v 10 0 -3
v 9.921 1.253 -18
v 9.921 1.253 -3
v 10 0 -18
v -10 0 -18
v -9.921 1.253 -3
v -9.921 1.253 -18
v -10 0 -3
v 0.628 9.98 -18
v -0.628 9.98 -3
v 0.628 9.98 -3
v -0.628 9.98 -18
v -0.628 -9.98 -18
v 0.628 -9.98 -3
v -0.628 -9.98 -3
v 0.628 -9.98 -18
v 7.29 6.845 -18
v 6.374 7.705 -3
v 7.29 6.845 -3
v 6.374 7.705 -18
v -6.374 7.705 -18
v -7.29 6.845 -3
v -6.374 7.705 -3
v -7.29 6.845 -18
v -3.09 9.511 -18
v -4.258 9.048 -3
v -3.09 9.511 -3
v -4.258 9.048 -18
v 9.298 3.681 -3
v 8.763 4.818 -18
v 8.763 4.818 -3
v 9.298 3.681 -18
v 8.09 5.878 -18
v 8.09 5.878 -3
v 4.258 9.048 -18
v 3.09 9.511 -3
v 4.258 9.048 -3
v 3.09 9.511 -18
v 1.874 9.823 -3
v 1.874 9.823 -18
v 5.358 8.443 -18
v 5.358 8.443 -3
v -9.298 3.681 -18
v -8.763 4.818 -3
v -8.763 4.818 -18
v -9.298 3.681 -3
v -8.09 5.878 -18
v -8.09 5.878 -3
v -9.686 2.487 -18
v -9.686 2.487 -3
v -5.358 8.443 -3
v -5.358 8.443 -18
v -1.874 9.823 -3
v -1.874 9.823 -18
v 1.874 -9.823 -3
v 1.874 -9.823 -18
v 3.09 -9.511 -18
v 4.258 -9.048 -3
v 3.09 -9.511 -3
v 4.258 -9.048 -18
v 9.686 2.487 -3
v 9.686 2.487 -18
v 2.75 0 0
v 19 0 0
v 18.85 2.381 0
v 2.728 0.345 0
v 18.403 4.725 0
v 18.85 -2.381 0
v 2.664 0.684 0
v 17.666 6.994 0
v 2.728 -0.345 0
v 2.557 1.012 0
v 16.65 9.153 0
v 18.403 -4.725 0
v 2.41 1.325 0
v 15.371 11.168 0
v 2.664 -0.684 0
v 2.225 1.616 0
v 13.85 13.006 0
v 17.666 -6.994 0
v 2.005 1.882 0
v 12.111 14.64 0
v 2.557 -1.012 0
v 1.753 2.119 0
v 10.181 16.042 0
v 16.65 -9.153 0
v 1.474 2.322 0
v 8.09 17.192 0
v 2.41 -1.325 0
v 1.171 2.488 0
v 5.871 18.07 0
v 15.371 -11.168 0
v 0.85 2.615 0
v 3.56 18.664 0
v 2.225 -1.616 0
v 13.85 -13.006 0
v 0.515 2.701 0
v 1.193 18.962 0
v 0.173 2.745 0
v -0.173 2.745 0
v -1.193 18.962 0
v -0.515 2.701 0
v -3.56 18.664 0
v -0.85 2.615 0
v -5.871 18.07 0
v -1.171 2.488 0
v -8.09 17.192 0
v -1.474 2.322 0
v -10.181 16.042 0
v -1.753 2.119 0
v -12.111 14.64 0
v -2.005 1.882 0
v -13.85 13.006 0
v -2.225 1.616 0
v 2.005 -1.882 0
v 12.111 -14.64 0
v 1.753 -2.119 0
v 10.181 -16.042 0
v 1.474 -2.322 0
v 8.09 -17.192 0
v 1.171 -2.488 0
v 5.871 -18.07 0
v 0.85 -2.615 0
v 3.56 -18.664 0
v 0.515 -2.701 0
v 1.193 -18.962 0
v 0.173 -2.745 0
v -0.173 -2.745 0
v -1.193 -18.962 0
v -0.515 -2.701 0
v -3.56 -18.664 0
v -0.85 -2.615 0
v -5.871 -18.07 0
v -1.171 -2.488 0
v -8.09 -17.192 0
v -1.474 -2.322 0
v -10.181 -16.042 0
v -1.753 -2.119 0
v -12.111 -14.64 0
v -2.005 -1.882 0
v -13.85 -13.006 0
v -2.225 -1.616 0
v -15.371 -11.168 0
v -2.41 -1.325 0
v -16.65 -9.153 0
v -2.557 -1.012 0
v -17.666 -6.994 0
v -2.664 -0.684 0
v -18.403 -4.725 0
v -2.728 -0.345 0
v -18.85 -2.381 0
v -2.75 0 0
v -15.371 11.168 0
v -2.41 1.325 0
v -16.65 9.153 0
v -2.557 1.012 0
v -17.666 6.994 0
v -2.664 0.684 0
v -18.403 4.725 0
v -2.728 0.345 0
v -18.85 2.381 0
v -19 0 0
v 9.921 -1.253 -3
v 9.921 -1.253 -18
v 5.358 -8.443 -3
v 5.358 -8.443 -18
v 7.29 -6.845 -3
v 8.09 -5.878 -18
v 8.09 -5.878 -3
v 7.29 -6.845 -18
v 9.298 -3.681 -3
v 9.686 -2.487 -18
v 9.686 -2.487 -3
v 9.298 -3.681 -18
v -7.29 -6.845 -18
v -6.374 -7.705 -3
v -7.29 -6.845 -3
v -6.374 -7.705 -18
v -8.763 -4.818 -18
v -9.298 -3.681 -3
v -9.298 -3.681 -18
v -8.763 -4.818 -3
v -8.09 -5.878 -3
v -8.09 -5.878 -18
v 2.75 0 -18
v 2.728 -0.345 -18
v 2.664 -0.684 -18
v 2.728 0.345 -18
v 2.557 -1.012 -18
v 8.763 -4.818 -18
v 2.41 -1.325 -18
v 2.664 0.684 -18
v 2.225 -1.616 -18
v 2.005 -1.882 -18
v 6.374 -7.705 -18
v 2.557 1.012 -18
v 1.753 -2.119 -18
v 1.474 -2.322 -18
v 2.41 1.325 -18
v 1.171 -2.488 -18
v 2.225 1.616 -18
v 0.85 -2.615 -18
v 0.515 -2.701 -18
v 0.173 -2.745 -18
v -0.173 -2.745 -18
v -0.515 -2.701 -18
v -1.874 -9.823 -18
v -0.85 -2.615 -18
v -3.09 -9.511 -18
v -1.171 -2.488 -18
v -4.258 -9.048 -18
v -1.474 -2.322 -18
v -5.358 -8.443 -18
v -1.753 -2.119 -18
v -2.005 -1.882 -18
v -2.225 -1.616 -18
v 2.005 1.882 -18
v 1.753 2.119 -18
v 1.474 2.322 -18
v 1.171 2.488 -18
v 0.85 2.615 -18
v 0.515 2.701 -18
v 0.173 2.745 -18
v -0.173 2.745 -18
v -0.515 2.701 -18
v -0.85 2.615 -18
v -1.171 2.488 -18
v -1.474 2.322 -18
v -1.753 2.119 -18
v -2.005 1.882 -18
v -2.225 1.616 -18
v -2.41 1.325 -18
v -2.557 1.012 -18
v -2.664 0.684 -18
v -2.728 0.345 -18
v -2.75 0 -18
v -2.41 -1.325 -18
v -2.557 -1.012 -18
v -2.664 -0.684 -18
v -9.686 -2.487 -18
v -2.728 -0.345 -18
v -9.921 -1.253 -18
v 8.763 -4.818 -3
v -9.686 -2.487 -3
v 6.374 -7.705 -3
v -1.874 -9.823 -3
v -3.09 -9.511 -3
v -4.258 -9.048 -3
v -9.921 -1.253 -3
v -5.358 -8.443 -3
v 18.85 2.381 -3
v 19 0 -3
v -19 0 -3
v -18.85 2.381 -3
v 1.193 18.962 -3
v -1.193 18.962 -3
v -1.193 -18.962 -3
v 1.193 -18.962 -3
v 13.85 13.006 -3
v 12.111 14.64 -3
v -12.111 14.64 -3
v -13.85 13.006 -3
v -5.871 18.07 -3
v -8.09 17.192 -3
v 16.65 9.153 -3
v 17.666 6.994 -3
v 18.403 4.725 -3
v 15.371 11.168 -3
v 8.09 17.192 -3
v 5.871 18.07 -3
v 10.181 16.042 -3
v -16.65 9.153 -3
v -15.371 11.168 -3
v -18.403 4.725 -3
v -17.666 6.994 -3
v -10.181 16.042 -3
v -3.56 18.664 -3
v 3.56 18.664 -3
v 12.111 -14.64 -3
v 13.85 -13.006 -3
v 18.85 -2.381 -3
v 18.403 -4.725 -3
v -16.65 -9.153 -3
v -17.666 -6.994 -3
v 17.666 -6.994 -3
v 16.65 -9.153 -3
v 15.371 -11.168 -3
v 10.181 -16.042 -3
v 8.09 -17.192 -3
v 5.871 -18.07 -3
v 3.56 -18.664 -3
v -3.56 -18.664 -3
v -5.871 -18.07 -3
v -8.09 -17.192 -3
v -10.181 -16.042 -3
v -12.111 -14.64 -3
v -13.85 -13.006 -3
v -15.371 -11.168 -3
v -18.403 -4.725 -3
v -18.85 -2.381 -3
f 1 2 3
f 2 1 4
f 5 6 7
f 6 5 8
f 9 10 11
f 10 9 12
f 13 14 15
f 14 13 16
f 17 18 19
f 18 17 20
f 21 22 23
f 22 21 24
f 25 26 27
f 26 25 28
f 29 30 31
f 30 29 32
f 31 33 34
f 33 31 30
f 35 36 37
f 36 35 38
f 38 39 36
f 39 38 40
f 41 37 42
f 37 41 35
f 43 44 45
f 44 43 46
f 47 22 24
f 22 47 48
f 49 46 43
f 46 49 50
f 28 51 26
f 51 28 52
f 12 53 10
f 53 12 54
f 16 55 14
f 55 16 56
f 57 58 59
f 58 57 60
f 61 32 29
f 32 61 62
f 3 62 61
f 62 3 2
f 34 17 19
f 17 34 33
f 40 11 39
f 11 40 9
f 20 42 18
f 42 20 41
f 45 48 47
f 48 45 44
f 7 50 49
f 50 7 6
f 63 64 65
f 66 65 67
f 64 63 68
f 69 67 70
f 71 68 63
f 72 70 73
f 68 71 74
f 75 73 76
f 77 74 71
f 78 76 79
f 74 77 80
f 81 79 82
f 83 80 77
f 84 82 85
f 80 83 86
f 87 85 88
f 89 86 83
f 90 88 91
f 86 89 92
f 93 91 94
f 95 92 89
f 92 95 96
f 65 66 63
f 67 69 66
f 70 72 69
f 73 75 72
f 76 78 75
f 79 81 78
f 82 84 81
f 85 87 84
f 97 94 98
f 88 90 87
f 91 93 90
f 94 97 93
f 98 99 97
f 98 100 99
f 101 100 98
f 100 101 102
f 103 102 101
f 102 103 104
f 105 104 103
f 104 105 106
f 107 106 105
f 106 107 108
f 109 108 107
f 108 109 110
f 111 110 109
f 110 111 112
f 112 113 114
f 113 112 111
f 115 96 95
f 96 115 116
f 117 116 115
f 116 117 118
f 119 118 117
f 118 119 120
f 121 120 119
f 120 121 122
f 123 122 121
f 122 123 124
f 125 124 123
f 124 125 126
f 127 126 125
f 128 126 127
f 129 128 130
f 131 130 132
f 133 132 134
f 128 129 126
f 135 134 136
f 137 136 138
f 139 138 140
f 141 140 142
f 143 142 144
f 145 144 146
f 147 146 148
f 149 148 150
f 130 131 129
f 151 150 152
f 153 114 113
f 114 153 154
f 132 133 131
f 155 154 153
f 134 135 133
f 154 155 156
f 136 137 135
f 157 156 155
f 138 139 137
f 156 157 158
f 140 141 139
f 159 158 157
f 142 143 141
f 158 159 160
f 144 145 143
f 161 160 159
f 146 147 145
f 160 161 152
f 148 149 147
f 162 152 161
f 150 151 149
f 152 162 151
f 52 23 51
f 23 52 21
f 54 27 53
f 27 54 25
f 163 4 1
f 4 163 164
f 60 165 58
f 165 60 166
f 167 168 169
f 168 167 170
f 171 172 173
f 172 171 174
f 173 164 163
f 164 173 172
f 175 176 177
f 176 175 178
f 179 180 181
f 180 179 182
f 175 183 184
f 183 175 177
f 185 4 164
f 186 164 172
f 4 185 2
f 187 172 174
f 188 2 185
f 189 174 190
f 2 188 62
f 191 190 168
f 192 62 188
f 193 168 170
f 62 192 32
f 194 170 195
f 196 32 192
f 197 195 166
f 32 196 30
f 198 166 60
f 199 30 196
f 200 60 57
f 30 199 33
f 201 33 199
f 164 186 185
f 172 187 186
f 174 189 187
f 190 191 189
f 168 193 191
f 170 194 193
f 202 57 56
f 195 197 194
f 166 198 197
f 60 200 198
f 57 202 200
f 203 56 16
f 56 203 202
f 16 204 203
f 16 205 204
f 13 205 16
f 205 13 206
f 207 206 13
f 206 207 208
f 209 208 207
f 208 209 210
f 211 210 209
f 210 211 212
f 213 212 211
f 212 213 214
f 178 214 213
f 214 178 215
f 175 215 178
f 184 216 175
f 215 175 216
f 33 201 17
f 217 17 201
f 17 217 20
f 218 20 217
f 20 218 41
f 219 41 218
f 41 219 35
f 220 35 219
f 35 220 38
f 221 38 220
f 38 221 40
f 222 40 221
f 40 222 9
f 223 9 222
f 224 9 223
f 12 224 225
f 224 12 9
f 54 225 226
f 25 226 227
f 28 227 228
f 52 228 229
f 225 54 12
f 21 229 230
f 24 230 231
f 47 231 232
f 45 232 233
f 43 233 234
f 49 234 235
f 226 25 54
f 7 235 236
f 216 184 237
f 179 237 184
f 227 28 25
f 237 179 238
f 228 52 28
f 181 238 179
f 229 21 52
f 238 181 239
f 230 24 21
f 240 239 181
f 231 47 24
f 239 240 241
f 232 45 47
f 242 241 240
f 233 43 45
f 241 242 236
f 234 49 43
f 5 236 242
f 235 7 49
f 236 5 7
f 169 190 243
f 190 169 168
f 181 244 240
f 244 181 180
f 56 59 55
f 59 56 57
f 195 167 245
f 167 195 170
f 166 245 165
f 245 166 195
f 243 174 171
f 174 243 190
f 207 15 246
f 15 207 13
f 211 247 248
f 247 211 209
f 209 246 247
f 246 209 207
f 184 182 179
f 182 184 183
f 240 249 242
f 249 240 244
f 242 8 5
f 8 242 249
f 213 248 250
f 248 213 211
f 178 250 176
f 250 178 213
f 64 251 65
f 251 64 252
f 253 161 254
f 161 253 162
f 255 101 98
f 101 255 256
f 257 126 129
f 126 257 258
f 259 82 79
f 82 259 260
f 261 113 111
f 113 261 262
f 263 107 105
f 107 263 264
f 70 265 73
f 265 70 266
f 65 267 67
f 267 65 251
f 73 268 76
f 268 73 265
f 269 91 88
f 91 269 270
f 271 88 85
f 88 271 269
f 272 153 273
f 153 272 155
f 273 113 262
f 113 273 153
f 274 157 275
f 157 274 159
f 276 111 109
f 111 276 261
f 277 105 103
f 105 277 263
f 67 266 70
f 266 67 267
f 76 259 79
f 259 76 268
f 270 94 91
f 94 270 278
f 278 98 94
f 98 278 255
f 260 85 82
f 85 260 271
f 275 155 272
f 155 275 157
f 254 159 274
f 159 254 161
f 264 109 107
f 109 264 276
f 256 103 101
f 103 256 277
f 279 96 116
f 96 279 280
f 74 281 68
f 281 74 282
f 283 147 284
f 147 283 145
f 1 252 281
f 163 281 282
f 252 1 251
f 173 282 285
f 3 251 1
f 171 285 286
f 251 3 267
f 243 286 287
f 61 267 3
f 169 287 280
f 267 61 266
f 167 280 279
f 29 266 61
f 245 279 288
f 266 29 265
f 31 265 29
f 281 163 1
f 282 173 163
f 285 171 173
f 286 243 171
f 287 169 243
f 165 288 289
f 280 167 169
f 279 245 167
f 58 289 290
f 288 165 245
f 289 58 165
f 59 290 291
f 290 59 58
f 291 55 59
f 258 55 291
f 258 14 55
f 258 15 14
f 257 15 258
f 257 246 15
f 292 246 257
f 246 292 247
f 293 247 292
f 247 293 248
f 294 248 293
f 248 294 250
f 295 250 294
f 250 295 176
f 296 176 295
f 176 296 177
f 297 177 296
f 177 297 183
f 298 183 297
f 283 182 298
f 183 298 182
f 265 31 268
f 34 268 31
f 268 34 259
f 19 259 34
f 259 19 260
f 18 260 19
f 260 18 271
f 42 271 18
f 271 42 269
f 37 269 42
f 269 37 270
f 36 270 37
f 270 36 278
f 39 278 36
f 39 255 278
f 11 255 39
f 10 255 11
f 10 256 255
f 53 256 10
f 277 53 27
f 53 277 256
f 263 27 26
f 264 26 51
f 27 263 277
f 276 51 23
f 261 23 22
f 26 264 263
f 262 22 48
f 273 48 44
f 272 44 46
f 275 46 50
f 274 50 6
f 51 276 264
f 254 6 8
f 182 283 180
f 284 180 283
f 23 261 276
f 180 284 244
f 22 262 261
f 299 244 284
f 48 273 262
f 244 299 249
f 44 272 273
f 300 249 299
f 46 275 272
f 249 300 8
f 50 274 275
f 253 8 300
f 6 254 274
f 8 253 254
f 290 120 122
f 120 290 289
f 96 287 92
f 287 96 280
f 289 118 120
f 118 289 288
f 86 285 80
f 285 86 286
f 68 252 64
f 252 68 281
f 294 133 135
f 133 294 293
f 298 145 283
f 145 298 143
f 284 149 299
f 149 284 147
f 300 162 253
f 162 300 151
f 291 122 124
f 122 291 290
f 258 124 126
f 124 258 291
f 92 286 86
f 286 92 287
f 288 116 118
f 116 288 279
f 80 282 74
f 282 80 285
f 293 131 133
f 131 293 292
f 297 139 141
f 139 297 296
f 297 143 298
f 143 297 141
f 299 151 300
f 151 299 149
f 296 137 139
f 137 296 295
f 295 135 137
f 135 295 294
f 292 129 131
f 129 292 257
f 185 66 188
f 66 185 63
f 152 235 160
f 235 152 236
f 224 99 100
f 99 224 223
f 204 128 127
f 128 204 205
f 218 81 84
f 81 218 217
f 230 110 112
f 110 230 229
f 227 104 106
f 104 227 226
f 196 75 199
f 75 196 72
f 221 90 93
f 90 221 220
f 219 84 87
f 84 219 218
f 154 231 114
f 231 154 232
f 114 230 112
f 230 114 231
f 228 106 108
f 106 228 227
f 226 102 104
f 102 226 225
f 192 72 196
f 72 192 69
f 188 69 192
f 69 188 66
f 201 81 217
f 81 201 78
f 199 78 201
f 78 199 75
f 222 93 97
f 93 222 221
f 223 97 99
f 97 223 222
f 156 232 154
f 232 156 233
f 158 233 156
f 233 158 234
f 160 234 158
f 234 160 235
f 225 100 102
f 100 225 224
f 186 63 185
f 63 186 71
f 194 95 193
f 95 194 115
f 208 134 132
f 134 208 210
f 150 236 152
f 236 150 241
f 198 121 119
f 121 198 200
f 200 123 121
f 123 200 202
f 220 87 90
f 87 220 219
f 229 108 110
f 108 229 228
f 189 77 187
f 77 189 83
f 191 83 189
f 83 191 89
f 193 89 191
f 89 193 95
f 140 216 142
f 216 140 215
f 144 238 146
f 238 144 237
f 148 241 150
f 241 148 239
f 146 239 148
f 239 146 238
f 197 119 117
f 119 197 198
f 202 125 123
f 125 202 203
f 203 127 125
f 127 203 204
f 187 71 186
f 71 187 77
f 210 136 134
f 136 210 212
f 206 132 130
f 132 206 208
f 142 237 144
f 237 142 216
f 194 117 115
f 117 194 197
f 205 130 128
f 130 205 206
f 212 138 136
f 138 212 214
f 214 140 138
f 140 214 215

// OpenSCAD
$fn = 50;


difference() {
	union() {
		translate(v = [0, 0, -18.0000000000]) {
			cylinder(h = 18, r = 10.0000000000);
		}
		translate(v = [0, 0, -3.0000000000]) {
			cylinder(h = 3, r = 19.0000000000);
		}
	}
	union() {
		#translate(v = [0, 0, -18]) {
			cylinder(h = 18, r = 2.7500000000);
		}
	}
}
